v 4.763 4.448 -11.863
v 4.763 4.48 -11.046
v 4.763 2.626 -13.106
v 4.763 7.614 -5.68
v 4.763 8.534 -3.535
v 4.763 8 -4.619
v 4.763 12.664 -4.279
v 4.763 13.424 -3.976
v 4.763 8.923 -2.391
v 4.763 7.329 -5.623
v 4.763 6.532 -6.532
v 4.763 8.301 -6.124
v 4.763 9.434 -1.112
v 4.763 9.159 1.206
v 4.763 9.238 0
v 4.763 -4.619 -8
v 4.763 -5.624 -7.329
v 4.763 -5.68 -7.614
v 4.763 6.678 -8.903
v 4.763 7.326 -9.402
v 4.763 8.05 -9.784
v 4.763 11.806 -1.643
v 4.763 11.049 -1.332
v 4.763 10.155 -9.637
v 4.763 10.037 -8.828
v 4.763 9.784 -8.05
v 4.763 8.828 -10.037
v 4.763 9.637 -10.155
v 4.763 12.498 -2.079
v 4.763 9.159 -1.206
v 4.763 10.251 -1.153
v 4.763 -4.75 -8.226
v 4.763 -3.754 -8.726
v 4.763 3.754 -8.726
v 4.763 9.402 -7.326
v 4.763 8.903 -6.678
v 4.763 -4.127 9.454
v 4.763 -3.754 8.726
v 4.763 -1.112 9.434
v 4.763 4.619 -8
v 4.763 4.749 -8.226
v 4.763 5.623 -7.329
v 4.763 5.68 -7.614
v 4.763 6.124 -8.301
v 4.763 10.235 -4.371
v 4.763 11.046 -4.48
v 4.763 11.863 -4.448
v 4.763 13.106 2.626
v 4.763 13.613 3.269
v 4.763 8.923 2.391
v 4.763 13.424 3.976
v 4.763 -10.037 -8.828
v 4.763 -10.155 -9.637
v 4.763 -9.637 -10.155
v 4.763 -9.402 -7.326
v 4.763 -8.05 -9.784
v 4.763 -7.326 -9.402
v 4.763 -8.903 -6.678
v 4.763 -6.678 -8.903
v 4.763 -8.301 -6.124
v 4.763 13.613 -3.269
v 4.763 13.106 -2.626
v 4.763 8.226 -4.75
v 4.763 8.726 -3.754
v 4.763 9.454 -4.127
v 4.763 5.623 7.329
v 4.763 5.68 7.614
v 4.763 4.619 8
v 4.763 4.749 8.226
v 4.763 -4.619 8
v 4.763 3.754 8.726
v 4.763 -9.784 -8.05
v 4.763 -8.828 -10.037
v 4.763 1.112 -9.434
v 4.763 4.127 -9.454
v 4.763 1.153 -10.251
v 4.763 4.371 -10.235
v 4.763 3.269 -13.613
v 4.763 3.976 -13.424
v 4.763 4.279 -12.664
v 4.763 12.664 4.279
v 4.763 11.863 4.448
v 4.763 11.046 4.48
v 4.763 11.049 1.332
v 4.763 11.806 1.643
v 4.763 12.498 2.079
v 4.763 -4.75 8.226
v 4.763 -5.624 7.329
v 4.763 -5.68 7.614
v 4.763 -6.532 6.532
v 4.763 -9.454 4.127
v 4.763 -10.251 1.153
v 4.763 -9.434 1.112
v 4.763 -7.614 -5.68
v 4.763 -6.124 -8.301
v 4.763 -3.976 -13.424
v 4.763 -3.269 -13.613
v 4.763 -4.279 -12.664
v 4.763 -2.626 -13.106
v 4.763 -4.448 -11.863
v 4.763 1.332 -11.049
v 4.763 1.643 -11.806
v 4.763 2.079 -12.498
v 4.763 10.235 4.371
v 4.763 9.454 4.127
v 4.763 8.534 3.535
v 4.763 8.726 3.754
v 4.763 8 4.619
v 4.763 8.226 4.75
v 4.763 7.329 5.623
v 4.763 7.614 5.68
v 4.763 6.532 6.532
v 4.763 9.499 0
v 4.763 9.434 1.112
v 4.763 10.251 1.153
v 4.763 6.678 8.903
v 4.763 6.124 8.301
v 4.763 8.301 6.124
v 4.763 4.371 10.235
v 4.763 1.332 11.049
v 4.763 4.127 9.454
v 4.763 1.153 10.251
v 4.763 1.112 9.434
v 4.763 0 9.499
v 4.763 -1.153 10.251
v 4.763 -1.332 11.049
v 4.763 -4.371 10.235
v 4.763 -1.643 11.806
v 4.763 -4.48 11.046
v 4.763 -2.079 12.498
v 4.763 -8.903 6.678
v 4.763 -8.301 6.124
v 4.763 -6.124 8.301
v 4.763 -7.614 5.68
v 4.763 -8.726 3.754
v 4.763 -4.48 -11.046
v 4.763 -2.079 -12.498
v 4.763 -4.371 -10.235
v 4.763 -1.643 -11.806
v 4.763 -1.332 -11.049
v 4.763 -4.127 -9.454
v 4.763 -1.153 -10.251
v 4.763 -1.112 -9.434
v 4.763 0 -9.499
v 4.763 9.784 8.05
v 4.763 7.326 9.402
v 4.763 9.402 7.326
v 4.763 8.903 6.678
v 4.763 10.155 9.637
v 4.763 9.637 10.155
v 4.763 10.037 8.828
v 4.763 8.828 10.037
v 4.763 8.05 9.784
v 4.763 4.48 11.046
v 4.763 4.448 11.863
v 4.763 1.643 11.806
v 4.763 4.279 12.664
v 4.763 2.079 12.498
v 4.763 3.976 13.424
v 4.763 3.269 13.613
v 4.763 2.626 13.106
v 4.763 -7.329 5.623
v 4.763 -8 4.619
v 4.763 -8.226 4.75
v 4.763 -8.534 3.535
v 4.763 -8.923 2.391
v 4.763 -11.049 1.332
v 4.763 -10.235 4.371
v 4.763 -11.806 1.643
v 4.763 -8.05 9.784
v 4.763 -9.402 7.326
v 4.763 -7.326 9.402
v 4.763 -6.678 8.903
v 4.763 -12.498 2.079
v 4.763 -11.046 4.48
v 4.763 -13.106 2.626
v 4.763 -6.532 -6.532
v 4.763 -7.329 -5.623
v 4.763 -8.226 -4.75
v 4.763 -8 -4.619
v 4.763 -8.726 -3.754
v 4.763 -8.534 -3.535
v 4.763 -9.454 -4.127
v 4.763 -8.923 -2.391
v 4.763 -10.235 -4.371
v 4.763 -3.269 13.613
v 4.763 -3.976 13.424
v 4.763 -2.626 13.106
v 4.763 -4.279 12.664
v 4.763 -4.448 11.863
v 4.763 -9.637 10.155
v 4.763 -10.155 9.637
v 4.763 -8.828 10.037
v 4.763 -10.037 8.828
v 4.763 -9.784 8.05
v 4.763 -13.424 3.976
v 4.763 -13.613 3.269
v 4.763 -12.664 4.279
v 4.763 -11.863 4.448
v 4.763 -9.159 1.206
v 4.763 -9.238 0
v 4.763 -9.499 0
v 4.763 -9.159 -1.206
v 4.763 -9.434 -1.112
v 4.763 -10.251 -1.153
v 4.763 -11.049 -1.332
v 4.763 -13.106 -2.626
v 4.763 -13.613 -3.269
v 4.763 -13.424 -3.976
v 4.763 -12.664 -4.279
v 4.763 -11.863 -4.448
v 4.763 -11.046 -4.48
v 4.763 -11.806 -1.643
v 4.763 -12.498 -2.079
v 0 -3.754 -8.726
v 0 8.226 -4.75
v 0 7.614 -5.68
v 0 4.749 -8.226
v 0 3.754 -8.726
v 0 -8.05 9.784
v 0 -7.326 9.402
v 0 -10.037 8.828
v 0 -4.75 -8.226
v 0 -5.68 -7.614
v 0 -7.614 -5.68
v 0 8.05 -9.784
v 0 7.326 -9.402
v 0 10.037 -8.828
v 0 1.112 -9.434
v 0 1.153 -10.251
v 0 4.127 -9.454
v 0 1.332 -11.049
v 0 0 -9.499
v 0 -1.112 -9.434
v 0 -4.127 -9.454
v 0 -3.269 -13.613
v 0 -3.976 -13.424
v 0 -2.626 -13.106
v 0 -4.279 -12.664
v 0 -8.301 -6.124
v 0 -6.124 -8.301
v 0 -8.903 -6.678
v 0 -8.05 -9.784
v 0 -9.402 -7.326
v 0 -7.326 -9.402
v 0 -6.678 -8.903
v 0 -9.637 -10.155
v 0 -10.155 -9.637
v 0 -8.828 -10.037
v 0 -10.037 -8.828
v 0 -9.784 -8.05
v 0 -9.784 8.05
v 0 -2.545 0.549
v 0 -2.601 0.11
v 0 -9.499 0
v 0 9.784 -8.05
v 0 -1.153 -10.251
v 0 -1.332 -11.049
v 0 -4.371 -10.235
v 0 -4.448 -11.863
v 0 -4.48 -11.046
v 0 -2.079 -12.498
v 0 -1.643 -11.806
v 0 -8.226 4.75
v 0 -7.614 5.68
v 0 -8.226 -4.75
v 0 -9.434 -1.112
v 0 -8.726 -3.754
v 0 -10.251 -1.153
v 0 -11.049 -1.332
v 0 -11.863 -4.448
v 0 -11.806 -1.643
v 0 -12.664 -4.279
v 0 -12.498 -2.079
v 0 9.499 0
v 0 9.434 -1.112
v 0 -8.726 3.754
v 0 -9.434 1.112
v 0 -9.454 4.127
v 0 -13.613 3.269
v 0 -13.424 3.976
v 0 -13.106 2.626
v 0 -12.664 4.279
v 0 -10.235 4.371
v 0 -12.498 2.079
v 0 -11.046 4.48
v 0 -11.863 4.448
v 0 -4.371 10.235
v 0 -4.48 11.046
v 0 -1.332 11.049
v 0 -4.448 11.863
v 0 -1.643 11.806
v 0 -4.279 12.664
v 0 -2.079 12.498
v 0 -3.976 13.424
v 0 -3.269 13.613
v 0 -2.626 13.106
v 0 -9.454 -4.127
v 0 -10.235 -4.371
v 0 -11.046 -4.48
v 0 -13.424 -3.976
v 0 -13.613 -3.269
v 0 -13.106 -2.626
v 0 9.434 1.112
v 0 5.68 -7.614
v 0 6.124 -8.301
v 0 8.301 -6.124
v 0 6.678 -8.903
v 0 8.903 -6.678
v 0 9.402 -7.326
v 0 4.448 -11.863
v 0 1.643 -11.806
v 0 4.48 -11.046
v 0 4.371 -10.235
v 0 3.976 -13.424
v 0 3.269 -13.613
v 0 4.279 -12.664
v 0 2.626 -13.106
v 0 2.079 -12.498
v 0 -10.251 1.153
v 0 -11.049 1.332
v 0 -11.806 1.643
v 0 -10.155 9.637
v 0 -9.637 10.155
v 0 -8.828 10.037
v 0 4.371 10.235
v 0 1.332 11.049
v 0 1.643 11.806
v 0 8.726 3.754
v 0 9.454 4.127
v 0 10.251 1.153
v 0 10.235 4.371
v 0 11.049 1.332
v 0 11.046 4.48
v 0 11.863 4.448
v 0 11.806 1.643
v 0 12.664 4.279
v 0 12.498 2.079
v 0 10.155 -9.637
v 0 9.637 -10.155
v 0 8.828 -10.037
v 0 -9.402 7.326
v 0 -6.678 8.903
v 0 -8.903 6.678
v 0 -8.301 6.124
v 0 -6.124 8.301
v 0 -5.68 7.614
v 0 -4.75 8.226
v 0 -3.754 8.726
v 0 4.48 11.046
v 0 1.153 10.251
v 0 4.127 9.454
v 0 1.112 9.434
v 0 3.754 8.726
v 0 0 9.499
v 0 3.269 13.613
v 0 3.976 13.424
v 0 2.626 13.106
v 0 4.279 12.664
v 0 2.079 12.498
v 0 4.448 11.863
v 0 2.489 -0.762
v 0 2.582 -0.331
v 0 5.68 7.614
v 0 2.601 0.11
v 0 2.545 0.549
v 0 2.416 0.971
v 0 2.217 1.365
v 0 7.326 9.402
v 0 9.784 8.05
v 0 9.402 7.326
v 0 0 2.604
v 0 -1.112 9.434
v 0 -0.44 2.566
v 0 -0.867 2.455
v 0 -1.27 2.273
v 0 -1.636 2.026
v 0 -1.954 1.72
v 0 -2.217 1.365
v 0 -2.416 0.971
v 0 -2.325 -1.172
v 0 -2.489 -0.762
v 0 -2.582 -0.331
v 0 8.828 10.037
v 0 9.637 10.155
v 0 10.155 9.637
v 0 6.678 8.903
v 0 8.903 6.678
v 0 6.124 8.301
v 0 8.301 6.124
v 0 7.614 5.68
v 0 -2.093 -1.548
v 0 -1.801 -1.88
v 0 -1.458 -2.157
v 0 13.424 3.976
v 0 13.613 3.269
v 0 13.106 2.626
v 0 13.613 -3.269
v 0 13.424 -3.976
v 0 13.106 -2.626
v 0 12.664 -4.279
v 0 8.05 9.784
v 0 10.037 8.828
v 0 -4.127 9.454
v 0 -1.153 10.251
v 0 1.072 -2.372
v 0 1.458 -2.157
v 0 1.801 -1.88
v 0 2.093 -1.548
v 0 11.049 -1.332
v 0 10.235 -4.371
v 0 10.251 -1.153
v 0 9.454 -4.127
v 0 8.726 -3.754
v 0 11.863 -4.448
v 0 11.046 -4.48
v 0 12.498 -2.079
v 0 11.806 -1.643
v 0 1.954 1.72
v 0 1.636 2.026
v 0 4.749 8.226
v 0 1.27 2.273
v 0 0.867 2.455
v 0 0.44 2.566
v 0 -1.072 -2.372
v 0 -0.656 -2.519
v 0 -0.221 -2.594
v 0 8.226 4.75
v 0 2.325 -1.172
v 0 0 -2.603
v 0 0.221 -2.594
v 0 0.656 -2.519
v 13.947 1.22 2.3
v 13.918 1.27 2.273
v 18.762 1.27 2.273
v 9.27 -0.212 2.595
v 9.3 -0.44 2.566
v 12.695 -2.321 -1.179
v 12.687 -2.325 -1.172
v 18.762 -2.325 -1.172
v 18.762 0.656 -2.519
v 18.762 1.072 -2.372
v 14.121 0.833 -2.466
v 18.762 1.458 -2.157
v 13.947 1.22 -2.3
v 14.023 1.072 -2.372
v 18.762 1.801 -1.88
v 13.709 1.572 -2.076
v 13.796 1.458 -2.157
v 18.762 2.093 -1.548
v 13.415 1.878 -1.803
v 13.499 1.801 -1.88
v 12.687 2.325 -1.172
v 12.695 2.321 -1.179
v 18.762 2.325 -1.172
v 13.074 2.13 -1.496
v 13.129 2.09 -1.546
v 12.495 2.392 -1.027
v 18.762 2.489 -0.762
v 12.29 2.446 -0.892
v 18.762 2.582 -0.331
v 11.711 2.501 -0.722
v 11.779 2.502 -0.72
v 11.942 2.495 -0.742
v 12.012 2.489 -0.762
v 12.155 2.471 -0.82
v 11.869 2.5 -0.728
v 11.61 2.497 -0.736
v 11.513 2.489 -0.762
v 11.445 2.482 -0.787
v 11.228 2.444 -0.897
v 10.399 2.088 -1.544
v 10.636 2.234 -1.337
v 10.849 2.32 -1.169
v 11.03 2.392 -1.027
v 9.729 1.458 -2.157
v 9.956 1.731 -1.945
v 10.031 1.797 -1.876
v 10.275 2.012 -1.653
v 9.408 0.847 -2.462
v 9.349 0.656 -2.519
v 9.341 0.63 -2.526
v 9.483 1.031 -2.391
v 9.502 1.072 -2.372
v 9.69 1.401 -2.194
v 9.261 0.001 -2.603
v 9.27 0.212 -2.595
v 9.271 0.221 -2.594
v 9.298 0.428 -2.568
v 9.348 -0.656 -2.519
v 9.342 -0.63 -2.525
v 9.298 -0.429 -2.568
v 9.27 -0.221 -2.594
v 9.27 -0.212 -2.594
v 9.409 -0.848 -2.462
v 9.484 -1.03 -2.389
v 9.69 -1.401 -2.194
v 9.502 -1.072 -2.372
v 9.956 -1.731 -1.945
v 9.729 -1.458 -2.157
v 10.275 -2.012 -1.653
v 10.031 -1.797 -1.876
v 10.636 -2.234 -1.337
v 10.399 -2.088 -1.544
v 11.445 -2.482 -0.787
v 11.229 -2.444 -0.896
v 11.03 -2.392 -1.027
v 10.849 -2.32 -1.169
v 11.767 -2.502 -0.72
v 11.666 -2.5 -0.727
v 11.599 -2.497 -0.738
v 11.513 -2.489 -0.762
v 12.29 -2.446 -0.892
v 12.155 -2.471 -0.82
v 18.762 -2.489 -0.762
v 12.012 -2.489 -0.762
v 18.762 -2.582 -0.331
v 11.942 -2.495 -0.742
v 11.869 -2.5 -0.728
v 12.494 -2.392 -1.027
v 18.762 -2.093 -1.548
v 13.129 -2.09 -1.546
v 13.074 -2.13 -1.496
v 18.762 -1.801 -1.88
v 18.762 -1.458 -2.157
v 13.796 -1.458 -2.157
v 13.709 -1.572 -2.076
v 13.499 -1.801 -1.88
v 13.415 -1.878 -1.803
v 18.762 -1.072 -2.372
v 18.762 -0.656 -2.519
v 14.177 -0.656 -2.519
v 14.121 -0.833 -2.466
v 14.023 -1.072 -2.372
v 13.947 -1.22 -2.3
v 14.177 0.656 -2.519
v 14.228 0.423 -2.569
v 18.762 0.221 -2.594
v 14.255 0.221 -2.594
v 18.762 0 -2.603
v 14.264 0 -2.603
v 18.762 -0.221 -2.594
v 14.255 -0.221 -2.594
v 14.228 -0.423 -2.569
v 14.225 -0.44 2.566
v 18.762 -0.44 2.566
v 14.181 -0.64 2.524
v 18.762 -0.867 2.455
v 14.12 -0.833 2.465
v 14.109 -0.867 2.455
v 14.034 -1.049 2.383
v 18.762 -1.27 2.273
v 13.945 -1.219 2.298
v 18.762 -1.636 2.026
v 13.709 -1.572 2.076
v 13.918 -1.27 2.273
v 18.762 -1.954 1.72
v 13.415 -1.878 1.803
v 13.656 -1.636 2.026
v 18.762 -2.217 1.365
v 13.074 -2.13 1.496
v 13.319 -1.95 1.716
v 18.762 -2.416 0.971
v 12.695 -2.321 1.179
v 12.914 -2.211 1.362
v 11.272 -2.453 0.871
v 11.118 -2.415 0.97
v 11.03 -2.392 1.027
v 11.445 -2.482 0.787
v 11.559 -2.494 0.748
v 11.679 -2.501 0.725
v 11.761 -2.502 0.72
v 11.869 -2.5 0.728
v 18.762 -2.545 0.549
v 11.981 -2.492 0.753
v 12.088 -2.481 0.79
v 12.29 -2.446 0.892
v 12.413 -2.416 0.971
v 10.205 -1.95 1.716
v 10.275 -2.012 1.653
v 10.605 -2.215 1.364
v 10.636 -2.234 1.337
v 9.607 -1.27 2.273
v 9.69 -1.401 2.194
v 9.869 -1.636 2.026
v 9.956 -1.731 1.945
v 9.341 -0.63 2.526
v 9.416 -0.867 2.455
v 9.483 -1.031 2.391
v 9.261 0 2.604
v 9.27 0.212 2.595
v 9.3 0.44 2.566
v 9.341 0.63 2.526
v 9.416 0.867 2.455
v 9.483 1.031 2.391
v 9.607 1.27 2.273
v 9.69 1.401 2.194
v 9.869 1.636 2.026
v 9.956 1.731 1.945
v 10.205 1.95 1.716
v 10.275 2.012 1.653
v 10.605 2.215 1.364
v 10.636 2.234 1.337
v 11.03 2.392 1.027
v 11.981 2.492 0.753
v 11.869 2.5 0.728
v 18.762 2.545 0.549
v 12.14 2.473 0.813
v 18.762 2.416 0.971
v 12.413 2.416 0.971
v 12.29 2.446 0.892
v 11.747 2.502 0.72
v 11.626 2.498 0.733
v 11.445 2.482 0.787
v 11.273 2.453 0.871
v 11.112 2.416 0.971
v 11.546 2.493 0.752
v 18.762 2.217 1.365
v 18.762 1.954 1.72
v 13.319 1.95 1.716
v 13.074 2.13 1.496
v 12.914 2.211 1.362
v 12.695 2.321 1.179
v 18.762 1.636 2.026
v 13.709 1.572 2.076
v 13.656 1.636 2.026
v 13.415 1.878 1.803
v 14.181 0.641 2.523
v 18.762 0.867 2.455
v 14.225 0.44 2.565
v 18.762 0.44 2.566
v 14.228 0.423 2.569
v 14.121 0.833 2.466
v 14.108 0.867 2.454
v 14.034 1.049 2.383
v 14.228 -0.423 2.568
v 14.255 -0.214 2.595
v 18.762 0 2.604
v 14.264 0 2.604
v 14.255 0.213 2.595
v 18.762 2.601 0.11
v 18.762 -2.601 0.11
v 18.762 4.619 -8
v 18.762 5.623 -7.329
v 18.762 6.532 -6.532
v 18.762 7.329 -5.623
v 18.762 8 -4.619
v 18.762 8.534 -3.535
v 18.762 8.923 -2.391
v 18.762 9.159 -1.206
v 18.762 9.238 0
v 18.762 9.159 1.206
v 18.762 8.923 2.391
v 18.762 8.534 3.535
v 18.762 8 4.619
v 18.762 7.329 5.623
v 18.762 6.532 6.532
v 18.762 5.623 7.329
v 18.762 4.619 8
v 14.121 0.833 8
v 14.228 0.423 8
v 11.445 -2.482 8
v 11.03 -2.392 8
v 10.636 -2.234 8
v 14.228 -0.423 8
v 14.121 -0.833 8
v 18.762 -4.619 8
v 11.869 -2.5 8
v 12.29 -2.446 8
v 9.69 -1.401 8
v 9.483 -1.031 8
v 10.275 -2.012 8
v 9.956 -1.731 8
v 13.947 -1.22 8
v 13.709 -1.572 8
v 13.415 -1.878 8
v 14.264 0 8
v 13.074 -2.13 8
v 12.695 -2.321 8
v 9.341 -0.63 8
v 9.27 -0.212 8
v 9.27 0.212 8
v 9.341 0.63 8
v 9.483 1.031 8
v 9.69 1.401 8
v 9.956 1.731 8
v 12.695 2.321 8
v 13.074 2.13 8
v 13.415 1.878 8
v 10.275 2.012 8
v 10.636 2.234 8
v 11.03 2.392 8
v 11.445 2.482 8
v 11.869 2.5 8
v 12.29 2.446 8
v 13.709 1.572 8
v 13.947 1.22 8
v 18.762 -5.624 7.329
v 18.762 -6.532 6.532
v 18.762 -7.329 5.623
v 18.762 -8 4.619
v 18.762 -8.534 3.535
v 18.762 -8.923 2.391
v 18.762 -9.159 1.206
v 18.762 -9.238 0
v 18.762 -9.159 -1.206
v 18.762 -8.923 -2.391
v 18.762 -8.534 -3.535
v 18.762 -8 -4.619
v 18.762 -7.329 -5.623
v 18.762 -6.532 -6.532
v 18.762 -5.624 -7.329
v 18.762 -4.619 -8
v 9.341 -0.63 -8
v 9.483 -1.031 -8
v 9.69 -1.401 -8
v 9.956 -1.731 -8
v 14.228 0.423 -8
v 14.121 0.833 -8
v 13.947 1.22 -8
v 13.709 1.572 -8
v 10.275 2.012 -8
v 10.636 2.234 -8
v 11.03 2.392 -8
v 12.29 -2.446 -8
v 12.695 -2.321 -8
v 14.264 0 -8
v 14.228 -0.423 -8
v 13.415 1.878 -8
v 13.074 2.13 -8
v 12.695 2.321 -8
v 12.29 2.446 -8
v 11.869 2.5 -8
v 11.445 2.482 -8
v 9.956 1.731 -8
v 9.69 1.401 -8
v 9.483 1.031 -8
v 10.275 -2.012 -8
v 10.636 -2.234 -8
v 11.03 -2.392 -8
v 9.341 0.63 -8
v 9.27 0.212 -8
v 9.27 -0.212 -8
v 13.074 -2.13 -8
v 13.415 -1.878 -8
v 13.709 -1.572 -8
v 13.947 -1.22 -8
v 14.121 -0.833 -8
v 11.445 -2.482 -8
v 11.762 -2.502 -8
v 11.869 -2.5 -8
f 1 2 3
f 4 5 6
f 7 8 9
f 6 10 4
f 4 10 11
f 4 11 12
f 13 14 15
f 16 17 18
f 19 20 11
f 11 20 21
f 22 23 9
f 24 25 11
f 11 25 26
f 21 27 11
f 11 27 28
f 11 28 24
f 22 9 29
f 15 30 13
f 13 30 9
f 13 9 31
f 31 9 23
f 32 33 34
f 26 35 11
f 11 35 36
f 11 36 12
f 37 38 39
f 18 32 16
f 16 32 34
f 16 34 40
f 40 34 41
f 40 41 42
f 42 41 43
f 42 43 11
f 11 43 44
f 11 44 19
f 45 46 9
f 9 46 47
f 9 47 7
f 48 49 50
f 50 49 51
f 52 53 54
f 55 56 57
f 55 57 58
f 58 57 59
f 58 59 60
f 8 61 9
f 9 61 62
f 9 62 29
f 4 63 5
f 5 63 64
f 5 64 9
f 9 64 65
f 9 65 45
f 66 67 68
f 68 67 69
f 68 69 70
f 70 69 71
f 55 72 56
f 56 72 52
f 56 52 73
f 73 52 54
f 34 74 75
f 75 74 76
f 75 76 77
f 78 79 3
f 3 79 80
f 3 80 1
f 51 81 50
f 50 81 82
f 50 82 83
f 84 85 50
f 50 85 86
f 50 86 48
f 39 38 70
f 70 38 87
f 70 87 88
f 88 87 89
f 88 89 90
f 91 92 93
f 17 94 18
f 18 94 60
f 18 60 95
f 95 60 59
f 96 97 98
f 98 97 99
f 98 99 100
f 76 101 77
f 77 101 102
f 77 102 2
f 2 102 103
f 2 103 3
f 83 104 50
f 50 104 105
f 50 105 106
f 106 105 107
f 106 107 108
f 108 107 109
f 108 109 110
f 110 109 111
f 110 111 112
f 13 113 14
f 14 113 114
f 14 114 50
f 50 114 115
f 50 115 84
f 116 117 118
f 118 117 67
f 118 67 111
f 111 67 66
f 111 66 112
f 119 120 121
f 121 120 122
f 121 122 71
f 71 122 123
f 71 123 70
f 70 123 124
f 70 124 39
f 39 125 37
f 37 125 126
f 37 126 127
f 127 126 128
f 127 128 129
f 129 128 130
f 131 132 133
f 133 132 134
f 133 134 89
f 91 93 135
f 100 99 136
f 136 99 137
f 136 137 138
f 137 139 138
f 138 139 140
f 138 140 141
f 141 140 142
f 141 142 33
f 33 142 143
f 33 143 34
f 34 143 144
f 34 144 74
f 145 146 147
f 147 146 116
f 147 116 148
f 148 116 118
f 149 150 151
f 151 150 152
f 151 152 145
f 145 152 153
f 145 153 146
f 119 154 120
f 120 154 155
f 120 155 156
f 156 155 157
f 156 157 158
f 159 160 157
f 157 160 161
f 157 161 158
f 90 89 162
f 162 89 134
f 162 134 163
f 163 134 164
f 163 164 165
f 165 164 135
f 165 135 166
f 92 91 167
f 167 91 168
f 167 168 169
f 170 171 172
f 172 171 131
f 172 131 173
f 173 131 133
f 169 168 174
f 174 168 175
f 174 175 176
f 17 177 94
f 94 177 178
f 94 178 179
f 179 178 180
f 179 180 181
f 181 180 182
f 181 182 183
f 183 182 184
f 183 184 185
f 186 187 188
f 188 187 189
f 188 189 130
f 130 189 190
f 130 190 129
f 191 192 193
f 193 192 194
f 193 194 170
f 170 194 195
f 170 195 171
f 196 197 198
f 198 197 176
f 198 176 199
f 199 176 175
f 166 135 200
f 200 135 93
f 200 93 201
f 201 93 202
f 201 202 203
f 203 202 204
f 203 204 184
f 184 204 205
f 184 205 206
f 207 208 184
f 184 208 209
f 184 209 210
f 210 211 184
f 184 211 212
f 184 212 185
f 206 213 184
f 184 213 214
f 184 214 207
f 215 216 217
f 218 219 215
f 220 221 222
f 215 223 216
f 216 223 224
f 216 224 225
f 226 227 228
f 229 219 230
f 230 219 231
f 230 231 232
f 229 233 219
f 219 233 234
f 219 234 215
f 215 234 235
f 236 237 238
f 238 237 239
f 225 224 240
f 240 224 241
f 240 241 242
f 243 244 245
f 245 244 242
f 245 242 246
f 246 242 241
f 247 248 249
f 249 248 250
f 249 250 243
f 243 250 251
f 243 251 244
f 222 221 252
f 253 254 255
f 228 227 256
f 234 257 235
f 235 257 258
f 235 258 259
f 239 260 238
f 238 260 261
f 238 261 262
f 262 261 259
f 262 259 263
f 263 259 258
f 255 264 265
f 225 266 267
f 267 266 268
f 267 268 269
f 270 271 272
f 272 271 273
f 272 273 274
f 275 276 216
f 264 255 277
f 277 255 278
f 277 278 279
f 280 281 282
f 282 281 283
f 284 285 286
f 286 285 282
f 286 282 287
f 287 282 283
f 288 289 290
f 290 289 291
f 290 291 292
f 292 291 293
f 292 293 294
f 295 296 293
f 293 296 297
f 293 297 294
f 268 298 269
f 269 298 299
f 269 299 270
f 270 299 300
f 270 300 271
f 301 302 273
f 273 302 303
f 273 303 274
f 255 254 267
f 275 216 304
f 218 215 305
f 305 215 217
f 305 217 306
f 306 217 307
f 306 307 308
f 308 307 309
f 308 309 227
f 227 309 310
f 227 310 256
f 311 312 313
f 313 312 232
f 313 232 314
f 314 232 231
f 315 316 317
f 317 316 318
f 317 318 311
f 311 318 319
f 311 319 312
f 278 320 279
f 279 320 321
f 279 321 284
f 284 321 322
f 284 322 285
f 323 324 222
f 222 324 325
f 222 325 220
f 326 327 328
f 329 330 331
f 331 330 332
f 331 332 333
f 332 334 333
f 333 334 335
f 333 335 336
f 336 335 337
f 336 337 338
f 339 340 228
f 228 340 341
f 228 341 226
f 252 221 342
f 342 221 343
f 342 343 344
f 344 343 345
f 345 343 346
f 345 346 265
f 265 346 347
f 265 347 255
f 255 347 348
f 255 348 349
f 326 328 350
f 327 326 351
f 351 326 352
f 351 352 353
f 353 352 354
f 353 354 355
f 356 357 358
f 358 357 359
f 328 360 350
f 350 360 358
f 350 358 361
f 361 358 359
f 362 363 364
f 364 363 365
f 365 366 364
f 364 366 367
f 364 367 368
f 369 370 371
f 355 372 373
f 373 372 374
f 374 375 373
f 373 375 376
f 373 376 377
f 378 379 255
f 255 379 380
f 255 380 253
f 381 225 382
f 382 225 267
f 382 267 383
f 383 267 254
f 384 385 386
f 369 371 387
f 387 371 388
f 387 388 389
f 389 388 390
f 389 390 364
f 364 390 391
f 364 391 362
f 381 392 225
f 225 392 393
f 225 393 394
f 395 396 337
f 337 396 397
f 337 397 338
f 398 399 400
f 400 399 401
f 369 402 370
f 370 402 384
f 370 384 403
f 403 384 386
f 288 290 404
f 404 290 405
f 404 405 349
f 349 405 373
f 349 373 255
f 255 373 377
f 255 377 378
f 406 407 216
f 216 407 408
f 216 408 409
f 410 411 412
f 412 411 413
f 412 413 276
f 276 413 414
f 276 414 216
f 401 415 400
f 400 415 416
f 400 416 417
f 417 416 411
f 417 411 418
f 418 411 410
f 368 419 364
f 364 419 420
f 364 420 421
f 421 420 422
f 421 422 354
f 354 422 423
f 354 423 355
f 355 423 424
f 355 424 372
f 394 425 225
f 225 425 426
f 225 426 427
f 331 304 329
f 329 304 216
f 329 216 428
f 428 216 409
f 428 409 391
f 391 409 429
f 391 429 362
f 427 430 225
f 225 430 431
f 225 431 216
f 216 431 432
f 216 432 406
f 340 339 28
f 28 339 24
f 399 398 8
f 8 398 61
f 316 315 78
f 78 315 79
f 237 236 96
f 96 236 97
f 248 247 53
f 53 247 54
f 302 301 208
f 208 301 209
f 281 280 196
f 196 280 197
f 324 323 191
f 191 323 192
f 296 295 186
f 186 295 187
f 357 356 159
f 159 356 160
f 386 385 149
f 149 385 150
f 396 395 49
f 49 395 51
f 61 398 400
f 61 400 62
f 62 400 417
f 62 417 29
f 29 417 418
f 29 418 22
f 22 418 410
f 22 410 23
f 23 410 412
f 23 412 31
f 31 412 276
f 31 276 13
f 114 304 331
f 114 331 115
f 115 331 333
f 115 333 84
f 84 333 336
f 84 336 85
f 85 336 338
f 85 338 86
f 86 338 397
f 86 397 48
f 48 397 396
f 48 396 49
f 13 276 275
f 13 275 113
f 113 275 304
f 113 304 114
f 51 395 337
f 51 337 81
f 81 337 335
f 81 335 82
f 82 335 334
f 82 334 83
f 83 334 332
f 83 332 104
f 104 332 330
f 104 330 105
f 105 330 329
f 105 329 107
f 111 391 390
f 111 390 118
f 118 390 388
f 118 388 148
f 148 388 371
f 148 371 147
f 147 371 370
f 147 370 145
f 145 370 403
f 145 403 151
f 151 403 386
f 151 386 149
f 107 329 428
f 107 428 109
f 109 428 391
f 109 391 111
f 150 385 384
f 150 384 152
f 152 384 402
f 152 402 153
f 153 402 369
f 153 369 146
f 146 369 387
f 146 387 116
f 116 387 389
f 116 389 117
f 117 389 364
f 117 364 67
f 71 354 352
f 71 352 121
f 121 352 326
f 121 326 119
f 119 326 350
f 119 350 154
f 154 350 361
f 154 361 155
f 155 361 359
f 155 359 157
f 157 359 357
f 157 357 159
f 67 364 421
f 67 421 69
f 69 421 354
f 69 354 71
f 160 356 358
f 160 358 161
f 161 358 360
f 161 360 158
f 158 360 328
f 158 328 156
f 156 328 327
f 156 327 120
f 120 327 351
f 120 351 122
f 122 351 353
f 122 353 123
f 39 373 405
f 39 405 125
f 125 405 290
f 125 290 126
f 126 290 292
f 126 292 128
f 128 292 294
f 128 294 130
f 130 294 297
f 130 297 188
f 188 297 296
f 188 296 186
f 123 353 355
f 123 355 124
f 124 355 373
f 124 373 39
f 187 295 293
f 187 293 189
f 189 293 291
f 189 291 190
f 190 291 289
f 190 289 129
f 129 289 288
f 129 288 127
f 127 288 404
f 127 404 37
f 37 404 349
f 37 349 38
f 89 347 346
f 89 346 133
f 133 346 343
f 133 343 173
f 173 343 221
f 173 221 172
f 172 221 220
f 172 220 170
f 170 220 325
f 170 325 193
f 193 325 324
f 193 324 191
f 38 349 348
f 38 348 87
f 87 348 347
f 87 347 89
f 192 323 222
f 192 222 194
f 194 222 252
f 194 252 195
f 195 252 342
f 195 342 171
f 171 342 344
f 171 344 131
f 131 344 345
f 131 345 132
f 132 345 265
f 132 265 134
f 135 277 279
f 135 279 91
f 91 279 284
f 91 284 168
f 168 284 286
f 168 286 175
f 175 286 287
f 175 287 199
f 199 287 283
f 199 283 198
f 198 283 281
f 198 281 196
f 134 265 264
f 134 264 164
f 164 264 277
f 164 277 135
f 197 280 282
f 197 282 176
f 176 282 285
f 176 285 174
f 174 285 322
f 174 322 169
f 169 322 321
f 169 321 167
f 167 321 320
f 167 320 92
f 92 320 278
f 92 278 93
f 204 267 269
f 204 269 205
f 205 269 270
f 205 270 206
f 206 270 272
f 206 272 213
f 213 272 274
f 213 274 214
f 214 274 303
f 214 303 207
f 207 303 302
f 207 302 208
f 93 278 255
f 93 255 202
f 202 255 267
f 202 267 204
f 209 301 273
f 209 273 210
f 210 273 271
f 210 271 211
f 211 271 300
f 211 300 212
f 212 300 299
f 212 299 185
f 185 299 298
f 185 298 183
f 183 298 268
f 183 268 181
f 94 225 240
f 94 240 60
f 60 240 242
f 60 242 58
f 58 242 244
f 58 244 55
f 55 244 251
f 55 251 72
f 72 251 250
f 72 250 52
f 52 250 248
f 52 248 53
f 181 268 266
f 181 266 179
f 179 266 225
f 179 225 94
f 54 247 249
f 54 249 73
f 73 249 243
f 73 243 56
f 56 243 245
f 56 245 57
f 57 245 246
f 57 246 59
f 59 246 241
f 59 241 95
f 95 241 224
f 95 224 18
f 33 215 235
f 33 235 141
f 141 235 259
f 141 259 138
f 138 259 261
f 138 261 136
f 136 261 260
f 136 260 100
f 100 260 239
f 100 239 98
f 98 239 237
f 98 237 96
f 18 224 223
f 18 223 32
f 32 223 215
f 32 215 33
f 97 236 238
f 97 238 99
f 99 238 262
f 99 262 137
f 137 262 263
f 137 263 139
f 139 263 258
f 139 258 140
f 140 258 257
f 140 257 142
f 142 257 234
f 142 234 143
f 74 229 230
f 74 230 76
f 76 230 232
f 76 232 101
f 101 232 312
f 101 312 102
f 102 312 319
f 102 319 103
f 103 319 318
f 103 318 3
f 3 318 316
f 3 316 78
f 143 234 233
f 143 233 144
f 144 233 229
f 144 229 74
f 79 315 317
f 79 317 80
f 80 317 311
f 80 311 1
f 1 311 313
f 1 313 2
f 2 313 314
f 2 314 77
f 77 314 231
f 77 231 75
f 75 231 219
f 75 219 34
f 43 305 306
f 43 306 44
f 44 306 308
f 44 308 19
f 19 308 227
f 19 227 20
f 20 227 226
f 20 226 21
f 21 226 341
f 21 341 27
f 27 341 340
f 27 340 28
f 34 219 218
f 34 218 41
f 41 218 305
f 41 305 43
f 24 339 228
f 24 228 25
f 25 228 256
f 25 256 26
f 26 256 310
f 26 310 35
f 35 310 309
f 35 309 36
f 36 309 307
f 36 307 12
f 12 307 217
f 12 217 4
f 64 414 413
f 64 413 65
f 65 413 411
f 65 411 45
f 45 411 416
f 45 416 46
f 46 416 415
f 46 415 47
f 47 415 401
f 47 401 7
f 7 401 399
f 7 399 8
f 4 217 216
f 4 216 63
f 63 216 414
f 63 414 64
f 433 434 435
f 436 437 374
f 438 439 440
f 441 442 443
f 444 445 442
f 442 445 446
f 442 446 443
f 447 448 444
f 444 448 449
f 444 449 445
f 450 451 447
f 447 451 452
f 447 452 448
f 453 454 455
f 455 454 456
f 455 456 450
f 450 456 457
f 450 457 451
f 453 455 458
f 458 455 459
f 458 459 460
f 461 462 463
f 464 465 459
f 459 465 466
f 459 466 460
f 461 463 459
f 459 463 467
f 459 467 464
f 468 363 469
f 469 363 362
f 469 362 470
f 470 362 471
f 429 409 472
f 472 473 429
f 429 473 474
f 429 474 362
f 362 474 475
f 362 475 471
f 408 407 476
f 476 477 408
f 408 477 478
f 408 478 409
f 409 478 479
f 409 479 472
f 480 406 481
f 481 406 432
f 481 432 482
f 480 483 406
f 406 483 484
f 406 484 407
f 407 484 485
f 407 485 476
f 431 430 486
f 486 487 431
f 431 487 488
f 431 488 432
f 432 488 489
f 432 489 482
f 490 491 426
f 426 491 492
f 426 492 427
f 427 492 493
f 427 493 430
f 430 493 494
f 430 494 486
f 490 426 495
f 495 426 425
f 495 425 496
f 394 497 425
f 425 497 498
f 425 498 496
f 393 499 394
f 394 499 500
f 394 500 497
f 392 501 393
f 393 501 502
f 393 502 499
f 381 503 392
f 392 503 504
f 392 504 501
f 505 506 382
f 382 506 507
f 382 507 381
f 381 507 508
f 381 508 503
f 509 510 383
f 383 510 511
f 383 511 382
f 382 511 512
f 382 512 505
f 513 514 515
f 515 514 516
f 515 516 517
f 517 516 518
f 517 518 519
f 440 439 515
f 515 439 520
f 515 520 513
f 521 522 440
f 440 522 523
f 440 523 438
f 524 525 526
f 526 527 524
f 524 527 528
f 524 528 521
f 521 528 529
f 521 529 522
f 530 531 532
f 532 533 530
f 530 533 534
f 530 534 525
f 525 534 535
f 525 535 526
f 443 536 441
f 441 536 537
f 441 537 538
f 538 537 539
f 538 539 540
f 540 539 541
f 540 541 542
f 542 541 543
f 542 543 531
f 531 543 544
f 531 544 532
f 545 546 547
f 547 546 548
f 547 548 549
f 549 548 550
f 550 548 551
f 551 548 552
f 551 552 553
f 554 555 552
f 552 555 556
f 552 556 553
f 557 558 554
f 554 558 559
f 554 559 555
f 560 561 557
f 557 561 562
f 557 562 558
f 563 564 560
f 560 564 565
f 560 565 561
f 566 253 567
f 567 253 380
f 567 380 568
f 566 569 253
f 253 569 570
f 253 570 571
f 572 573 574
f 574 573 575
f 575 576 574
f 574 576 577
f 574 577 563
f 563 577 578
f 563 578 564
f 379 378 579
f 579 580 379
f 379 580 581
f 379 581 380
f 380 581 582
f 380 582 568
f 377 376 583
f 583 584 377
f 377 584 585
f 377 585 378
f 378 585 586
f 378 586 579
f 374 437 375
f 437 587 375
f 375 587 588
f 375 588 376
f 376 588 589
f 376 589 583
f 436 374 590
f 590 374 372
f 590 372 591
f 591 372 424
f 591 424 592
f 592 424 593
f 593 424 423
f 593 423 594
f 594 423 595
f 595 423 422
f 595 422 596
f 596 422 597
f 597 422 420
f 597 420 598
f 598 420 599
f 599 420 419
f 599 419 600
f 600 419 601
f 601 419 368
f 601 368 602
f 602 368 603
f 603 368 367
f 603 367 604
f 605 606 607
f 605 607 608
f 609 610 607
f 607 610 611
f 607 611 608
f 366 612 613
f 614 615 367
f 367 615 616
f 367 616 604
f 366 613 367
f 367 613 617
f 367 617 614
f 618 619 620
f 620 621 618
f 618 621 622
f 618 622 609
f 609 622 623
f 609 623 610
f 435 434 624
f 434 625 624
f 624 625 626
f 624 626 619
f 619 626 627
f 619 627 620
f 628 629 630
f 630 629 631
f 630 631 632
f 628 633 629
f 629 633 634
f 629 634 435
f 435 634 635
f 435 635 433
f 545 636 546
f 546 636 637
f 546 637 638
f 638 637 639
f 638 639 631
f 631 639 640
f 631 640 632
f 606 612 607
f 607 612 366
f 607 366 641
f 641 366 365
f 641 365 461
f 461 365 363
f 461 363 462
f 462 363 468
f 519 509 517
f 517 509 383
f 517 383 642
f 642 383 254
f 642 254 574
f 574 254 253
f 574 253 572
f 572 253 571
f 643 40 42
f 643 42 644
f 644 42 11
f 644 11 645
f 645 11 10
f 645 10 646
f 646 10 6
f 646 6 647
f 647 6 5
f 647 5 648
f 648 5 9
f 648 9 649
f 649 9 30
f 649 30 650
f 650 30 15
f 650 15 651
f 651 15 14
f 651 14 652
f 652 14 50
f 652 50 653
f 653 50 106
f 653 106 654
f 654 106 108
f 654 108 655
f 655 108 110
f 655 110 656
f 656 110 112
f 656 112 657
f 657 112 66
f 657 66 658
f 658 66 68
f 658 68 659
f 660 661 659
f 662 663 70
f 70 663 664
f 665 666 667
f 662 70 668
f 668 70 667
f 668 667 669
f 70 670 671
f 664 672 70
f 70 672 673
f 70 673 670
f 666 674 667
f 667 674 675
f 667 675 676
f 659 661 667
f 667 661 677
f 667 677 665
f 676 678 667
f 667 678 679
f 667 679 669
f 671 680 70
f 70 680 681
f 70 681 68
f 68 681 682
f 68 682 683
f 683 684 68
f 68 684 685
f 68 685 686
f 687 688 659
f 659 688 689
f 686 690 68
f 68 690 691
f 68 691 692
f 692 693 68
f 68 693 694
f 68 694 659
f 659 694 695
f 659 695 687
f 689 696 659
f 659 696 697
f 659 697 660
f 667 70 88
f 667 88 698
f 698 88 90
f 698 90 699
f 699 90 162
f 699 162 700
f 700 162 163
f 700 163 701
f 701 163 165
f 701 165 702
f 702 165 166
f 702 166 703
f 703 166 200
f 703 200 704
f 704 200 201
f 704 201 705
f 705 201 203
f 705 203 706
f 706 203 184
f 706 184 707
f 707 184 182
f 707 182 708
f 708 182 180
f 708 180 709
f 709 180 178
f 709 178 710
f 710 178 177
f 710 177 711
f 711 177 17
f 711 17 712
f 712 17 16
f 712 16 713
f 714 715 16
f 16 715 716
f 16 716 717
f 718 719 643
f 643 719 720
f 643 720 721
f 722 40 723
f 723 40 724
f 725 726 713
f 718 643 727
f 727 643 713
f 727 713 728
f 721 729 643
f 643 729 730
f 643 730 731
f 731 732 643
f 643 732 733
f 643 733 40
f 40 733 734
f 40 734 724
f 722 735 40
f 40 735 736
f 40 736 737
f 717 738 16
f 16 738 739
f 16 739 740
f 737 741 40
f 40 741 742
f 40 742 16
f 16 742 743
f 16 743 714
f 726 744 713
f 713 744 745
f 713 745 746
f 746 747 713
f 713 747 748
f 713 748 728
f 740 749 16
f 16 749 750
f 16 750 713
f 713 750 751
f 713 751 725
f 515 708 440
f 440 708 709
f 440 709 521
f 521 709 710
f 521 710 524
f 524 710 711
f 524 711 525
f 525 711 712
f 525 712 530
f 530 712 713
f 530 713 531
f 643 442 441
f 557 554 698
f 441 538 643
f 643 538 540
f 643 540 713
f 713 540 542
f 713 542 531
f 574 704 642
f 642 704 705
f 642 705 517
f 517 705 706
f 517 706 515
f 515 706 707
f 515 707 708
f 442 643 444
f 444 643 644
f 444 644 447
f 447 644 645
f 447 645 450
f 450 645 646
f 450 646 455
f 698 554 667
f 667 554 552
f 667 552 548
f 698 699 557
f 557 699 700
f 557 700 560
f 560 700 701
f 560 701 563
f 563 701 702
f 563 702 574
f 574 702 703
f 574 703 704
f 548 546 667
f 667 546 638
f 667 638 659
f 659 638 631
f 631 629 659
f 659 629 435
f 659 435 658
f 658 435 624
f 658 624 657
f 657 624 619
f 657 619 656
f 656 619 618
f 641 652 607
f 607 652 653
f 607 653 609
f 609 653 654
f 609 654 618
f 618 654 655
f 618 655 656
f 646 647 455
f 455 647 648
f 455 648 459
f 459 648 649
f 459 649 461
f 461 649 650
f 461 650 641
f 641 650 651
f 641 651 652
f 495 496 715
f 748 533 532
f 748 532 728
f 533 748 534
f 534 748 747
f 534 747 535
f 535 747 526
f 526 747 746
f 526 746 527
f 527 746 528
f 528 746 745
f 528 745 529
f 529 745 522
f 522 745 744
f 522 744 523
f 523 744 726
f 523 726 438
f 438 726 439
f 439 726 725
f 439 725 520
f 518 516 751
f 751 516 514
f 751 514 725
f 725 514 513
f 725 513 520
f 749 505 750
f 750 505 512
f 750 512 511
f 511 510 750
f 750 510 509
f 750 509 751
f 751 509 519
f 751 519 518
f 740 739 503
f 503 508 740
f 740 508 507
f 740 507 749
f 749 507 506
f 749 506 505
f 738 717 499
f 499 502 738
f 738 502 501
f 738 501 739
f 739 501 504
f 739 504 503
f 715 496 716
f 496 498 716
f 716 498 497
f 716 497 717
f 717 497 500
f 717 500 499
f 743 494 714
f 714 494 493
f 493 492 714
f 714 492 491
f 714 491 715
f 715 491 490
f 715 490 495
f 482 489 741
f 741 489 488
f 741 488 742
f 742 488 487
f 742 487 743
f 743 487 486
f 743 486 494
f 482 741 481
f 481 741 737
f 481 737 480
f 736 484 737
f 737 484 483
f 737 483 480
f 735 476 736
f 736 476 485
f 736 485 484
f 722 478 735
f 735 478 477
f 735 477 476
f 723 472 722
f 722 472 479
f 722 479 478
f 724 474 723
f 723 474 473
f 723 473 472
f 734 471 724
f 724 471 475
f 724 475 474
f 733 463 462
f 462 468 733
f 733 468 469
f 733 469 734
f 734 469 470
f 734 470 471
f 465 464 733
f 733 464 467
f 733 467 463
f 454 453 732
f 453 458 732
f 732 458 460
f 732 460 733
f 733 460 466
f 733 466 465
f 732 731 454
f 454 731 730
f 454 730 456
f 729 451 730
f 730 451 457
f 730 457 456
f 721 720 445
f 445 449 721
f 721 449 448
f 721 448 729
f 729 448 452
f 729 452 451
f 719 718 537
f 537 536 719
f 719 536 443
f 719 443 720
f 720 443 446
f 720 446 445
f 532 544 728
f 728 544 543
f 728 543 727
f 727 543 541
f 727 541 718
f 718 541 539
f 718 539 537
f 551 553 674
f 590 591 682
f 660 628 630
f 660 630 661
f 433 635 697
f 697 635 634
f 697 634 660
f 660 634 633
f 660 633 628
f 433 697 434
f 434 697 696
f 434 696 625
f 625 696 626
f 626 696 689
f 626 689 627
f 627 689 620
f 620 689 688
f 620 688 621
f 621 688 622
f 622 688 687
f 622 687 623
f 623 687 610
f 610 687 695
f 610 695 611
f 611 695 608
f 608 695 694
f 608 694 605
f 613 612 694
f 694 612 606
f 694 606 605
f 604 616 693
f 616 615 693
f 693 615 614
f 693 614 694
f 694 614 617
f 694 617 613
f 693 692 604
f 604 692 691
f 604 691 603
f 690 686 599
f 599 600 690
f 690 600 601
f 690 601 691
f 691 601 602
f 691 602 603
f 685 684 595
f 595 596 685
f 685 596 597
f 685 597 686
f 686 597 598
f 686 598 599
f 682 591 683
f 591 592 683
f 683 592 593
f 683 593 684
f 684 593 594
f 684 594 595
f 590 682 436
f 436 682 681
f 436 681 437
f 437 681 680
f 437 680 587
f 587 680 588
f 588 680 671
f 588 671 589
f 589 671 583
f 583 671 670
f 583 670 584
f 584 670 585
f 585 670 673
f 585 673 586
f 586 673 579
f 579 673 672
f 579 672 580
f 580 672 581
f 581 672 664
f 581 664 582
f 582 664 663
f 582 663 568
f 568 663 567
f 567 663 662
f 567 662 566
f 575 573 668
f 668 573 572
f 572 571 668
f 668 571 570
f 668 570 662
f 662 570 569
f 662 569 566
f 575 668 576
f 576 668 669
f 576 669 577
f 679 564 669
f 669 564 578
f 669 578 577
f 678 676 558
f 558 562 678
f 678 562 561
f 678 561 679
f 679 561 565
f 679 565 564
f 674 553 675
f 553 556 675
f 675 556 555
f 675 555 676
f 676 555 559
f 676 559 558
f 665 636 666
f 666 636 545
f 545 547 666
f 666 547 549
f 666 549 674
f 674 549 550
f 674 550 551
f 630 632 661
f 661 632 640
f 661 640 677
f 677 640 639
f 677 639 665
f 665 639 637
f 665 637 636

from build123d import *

# Parameters (mm, degrees)
BASPROSKE_W         = 4.7625
BASPROSKE_H         = 14
TOOTHCUT_DEPTH      = 21.36372771
TEETHCUTS_COUNT     = 12
TEETHCUTS_ANGLE     = 330
BORSKE_R            = 2.6035
BORE_DEPTH          = 50.0000508
BOSS_EXTRUDE1_DEPTH = 13.99999994
SKETCH2_R           = 2.6035
CUT_EXTRUDE1_DEPTH  = 27.882327142
SKETCH3_R           = 2.5019
CUT_EXTRUDE2_DEPTH  = 32.693338104


with BuildPart() as part:
    # BasProSke → Base-Revolve (revolve)
    with BuildSketch(Plane(origin=(0, 0, 0), x_dir=(1, 0, 0), z_dir=(0, 1, 0)), mode=Mode.PRIVATE) as base_revolve_sk:
        with Locations((2.38125, 7)):
            Rectangle(BASPROSKE_W, BASPROSKE_H)
    revolve(base_revolve_sk.sketch.rotate(Axis((-10, 0, 0), (1, 0, 0)), 180), axis=Axis((-10, 0, 0), (1, 0, 0)))

    # TooCutSke → ToothCut (cut, through all)
    with BuildSketch(Plane(origin=(0, 0, 0), x_dir=(0, 0, -1), z_dir=(1, 0, 0))):
        with BuildLine():
            ThreePointArc((1.111908866, 9.433698091), (0, 9.499), (-1.111908866, 9.433698091))
            ThreePointArc((-1.111908866, 9.433698091), (-1.651516138, 11.821129337), (-3.298149691, 13.632096456))
            ThreePointArc((-3.298149691, 13.632096456), (0, 14.0254), (3.298149691, 13.632096456))
            ThreePointArc((3.298149691, 13.632096456), (1.651516138, 11.821129337), (1.111908866, 9.433698091))
        make_face()
    toothcut = extrude(amount=TOOTHCUT_DEPTH, mode=Mode.SUBTRACT)

    # TeethCuts: ToothCut ×12 about axis
    teethcuts_axis = Axis((-10, 0, 0), (1, 0, 0))
    for i in range(1, TEETHCUTS_COUNT):
        add(toothcut.rotate(teethcuts_axis, i * TEETHCUTS_ANGLE / (TEETHCUTS_COUNT - 1)), mode=Mode.SUBTRACT)

    # BorSke → Bore (cut, symmetric)
    with BuildSketch(Plane(origin=(0, 0, 0), x_dir=(0, 0, -1), z_dir=(1, 0, 0))):
        with Locations(Location((0, 0, 0), (0, 0, 180))):
            Circle(BORSKE_R)
    extrude(amount=BORE_DEPTH, both=True, mode=Mode.SUBTRACT)

    # Sketch1 → Boss-Extrude1 (add)
    with BuildSketch(Plane(origin=(4.7625, 0, 0), x_dir=(0, 0, -1), z_dir=(1, 0, 0))):
        with BuildLine():
            Line((-8, 4.618802154), (-8, -4.618802154))
            ThreePointArc((-8, -4.618802154), (0, -9.237604307), (8, -4.618802154))
            Line((8, -4.618802154), (8, 4.618802154))
            ThreePointArc((8, 4.618802154), (0, 9.237604307), (-8, 4.618802154))
        make_face()
    extrude(amount=BOSS_EXTRUDE1_DEPTH)

    # Sketch2 → Cut-Extrude1 (cut, through all)
    with BuildSketch(Plane(origin=(18.76249994, 0, 0), x_dir=(0, 0, -1), z_dir=(1, 0, 0))):
        Circle(SKETCH2_R)
    extrude(amount=-CUT_EXTRUDE1_DEPTH, mode=Mode.SUBTRACT)

    # Sketch3 → Cut-Extrude2 (cut, through all)
    with BuildSketch(Plane.XY.offset(8)):
        with Locations((11.76249997, 0)):
            Circle(SKETCH3_R)
    extrude(amount=-CUT_EXTRUDE2_DEPTH, mode=Mode.SUBTRACT)


solid = part.part
